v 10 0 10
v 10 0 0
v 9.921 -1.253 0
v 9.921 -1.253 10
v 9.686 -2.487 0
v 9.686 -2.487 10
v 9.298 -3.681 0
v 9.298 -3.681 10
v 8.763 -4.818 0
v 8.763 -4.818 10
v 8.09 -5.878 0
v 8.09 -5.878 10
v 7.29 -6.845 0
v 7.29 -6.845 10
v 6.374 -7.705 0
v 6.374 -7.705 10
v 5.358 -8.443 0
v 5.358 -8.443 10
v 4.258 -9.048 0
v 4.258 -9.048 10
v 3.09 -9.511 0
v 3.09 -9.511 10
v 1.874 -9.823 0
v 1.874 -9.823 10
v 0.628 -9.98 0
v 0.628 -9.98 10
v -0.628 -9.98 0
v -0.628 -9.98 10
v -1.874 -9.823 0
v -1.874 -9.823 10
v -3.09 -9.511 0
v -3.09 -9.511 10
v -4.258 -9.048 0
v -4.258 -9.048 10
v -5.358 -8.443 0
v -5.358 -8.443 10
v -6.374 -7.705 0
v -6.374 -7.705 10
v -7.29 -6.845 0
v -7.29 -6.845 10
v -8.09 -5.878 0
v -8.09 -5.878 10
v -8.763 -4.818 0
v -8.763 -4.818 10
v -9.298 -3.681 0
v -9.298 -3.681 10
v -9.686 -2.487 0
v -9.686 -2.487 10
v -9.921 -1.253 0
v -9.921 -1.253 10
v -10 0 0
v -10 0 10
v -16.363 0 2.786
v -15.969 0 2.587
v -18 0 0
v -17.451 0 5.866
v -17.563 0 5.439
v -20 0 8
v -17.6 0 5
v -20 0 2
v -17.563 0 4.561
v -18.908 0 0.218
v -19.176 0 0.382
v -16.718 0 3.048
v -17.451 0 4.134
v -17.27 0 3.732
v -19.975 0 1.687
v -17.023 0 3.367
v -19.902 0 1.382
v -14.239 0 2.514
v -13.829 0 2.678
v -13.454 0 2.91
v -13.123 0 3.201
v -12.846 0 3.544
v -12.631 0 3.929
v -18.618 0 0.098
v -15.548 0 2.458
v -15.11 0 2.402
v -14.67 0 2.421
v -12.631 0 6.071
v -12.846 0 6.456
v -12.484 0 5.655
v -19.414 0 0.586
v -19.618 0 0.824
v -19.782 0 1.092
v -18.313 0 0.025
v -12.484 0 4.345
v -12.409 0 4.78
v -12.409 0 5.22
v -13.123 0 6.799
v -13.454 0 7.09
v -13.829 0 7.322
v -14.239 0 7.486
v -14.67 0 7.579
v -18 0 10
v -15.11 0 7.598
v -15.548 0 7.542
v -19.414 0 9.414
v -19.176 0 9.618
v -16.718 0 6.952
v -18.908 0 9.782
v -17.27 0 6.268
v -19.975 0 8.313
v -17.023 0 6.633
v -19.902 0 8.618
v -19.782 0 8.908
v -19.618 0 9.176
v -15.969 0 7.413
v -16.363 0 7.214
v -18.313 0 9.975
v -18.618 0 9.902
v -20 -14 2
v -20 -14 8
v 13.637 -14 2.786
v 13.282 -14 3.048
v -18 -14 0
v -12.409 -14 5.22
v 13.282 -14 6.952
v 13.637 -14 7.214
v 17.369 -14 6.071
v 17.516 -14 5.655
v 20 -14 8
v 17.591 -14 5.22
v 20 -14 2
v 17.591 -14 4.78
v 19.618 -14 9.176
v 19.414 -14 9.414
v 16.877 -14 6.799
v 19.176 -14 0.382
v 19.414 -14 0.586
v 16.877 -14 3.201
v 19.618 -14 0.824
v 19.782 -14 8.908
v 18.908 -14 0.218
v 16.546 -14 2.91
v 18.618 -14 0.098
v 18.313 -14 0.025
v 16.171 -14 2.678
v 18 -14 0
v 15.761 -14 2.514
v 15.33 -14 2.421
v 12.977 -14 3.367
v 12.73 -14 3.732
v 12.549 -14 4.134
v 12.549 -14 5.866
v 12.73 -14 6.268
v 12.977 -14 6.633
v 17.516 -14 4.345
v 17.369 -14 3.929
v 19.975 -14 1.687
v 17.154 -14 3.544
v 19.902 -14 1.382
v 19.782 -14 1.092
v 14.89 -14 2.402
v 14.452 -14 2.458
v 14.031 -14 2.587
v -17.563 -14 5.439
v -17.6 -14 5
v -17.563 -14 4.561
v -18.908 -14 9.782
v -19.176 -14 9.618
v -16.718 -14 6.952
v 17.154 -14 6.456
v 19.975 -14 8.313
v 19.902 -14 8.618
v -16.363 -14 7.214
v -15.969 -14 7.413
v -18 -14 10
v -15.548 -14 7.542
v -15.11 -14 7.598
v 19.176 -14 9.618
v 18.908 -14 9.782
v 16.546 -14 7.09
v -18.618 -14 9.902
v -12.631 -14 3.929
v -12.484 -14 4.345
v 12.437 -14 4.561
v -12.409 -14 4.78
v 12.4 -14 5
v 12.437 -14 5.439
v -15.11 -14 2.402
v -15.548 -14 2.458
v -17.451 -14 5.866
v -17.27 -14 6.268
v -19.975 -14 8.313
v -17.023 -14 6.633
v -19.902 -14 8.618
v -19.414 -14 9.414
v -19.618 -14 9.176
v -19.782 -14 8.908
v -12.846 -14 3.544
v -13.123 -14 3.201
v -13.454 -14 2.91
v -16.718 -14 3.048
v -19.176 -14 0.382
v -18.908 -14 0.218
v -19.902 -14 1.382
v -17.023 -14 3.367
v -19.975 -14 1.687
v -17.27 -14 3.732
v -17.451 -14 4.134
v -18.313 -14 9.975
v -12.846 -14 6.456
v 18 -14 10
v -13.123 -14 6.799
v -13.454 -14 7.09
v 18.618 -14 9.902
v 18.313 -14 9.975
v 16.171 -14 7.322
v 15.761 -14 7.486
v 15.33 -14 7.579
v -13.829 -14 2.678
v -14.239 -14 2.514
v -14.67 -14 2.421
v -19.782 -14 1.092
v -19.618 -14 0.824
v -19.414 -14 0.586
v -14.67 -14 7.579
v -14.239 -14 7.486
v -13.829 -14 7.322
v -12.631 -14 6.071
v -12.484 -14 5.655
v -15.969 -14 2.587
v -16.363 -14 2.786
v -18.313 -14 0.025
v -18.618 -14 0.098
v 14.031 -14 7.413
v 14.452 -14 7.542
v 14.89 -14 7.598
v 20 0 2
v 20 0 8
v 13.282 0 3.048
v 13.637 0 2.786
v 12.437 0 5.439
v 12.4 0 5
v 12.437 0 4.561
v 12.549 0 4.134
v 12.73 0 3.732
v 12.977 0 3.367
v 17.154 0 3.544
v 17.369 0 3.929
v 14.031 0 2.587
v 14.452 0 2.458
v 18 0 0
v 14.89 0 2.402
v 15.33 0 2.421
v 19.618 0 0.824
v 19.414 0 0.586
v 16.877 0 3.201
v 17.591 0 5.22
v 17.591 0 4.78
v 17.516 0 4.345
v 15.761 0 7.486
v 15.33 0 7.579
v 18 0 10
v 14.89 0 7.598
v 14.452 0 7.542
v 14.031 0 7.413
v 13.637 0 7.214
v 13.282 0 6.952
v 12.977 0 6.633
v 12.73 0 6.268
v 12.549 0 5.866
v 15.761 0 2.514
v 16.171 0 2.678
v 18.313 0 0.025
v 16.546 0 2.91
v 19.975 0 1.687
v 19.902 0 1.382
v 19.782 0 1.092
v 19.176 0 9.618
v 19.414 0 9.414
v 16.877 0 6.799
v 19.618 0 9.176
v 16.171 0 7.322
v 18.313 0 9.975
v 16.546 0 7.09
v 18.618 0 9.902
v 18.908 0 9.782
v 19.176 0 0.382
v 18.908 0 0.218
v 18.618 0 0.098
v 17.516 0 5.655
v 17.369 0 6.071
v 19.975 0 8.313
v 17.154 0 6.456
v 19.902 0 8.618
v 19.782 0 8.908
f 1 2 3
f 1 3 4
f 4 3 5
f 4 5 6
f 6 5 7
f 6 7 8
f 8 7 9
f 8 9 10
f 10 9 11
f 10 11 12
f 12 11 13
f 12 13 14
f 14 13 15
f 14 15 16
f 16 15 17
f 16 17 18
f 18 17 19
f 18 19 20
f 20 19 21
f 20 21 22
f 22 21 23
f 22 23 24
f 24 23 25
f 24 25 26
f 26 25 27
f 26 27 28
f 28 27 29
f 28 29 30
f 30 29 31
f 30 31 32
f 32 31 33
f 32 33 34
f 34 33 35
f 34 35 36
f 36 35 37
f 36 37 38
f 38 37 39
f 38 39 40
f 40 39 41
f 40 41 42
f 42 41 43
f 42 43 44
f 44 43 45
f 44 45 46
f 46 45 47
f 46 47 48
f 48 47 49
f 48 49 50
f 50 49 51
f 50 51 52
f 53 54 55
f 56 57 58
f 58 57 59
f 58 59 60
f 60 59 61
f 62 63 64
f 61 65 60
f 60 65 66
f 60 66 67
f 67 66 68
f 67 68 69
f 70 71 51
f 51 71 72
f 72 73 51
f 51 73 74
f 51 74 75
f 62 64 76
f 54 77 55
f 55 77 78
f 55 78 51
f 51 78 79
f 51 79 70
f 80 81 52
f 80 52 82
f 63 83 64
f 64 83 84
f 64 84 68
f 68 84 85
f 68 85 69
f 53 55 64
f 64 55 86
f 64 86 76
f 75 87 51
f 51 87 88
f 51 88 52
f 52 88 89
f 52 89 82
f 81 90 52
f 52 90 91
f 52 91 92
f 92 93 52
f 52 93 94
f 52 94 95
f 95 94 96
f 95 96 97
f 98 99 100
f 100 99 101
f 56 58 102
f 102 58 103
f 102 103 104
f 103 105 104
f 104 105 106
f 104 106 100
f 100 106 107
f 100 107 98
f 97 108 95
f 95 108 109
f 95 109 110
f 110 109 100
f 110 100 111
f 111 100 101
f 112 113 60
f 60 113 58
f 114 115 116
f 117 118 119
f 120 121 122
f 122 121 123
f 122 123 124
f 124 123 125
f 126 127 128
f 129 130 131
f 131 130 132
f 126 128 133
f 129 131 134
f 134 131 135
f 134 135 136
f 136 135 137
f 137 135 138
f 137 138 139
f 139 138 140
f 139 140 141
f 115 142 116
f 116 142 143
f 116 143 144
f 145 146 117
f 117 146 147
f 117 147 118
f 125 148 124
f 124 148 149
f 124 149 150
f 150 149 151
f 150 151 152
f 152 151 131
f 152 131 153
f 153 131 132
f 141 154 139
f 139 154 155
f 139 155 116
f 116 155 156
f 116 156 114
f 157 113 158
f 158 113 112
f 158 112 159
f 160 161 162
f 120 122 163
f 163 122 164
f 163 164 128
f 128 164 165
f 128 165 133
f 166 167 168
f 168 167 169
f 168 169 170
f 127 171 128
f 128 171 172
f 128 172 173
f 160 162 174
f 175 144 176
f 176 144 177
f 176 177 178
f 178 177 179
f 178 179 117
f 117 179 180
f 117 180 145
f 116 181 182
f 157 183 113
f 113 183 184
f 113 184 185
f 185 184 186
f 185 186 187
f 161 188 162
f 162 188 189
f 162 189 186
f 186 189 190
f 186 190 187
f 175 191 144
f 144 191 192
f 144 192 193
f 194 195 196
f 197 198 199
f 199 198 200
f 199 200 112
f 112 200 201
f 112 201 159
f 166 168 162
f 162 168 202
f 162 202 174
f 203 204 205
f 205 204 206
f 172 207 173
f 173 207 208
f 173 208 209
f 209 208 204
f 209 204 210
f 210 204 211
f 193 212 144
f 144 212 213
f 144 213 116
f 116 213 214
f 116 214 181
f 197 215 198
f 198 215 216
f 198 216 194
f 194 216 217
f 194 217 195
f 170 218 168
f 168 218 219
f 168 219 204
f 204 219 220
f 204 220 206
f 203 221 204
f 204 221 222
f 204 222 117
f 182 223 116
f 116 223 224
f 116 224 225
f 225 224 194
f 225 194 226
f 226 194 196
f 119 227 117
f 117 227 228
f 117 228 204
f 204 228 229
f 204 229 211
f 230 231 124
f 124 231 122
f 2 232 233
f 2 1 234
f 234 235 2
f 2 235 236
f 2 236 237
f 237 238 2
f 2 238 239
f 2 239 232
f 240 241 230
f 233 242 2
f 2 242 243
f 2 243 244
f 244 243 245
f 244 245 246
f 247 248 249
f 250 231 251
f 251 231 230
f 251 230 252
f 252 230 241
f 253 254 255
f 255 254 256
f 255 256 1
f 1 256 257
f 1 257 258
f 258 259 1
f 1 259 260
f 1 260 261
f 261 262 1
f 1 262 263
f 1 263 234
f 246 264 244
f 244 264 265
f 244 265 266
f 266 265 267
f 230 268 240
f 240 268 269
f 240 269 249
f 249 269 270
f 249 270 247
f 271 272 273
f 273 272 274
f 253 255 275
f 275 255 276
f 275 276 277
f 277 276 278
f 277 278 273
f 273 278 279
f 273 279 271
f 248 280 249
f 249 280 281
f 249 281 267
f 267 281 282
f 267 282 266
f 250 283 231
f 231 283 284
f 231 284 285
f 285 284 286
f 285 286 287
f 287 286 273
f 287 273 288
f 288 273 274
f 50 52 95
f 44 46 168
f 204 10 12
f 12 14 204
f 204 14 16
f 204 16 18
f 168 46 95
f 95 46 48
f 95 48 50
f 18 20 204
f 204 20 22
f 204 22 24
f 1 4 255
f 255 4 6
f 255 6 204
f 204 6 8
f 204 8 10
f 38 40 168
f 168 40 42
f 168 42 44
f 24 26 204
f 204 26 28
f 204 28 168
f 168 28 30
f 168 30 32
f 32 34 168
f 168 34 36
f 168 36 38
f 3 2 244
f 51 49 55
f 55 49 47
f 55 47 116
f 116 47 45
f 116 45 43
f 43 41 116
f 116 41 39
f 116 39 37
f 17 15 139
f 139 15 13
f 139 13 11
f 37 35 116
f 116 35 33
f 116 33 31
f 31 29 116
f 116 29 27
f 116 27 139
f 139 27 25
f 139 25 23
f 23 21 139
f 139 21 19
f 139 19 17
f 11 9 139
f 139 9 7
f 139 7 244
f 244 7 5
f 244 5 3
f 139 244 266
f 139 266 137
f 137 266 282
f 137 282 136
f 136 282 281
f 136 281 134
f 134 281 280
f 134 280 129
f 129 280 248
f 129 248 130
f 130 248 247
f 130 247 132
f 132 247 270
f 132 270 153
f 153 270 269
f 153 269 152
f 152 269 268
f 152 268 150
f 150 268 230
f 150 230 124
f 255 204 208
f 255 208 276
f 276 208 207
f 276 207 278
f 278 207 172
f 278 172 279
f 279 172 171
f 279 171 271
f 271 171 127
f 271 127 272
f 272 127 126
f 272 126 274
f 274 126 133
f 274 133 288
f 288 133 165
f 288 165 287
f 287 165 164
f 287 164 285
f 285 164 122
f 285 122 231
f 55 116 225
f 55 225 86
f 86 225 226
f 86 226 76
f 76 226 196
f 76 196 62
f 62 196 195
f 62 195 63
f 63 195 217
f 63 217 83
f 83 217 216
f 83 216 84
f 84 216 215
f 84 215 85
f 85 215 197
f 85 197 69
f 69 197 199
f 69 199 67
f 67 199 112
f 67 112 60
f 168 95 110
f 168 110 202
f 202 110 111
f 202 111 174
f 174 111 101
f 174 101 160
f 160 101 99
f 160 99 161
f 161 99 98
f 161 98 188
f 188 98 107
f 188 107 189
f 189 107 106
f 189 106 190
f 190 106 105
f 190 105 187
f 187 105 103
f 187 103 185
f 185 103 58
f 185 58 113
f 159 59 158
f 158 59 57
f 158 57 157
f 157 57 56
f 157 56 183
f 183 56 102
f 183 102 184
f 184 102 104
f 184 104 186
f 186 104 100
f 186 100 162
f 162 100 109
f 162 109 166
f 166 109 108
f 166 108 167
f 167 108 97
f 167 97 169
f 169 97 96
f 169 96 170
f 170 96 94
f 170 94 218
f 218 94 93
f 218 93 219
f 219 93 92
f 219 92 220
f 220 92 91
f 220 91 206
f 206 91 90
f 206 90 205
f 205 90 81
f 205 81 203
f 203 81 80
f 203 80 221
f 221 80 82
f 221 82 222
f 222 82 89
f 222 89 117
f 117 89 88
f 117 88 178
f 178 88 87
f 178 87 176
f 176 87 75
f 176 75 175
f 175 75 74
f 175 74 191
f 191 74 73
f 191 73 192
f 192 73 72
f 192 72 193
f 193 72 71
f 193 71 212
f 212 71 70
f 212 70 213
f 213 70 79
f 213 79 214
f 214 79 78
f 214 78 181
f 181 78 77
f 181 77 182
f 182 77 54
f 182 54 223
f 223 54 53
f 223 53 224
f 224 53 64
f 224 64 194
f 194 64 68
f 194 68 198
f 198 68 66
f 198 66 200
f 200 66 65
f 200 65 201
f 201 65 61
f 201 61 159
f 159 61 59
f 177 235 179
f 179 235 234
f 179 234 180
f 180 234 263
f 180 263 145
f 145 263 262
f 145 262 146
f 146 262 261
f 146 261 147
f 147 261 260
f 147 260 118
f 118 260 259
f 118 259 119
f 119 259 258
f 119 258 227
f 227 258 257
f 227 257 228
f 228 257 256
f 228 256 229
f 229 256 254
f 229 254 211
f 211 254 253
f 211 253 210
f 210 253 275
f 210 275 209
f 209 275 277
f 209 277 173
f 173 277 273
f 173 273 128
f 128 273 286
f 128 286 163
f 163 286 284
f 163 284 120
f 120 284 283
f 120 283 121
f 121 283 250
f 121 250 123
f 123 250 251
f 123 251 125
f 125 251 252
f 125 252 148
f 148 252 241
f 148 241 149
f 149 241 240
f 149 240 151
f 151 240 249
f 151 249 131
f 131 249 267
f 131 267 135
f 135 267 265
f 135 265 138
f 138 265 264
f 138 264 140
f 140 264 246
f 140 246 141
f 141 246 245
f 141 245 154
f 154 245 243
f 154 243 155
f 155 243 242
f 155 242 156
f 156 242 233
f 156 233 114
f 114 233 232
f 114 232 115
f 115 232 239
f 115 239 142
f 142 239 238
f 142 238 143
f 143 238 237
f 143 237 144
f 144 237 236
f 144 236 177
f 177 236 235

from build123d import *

# Parameters (mm, degrees)
BOSS_EXTRUDE1_DEPTH = 10
FILLET1_R           = 2
SKETCH4_R           = 2.6
CUT_EXTRUDE2_DEPTH  = 27.381811917


with BuildPart() as part:
    # Sketch1 → Boss-Extrude1 (new body)
    with BuildSketch(Plane.XY):
        with BuildLine():
            Line((10, 0), (20, 0))
            Line((20, 0), (20, -14))
            Line((20, -14), (-20, -14))
            Line((-20, -14), (-20, 0))
            Line((-20, 0), (-10, 0))
            ThreePointArc((-10, 0), (0, -10), (10, 0))
        make_face()
    extrude(amount=BOSS_EXTRUDE1_DEPTH)

    # Fillet1
    fillet1_edges = [part.edges().sort_by_distance(p)[0] for p in [
        (-20, -7, 10),
        (20, -7, 10),
        (20, -7, 0),
        (-20, -7, 0),
    ]]
    fillet(fillet1_edges, radius=FILLET1_R)

    # Sketch4 → Cut-Extrude2 (cut, through all)
    with BuildSketch(Plane(origin=(0, 0, 0), x_dir=(1, 0, 0), z_dir=(0, 1, 0))):
        with Locations(Location((-15, -5, 0), (0, 0, 180))):
            Circle(SKETCH4_R)
        with Locations(Location((15, -5, 0), (0, 0, 180))):
            Circle(SKETCH4_R)
    extrude(amount=-CUT_EXTRUDE2_DEPTH, mode=Mode.SUBTRACT)


solid = part.part
